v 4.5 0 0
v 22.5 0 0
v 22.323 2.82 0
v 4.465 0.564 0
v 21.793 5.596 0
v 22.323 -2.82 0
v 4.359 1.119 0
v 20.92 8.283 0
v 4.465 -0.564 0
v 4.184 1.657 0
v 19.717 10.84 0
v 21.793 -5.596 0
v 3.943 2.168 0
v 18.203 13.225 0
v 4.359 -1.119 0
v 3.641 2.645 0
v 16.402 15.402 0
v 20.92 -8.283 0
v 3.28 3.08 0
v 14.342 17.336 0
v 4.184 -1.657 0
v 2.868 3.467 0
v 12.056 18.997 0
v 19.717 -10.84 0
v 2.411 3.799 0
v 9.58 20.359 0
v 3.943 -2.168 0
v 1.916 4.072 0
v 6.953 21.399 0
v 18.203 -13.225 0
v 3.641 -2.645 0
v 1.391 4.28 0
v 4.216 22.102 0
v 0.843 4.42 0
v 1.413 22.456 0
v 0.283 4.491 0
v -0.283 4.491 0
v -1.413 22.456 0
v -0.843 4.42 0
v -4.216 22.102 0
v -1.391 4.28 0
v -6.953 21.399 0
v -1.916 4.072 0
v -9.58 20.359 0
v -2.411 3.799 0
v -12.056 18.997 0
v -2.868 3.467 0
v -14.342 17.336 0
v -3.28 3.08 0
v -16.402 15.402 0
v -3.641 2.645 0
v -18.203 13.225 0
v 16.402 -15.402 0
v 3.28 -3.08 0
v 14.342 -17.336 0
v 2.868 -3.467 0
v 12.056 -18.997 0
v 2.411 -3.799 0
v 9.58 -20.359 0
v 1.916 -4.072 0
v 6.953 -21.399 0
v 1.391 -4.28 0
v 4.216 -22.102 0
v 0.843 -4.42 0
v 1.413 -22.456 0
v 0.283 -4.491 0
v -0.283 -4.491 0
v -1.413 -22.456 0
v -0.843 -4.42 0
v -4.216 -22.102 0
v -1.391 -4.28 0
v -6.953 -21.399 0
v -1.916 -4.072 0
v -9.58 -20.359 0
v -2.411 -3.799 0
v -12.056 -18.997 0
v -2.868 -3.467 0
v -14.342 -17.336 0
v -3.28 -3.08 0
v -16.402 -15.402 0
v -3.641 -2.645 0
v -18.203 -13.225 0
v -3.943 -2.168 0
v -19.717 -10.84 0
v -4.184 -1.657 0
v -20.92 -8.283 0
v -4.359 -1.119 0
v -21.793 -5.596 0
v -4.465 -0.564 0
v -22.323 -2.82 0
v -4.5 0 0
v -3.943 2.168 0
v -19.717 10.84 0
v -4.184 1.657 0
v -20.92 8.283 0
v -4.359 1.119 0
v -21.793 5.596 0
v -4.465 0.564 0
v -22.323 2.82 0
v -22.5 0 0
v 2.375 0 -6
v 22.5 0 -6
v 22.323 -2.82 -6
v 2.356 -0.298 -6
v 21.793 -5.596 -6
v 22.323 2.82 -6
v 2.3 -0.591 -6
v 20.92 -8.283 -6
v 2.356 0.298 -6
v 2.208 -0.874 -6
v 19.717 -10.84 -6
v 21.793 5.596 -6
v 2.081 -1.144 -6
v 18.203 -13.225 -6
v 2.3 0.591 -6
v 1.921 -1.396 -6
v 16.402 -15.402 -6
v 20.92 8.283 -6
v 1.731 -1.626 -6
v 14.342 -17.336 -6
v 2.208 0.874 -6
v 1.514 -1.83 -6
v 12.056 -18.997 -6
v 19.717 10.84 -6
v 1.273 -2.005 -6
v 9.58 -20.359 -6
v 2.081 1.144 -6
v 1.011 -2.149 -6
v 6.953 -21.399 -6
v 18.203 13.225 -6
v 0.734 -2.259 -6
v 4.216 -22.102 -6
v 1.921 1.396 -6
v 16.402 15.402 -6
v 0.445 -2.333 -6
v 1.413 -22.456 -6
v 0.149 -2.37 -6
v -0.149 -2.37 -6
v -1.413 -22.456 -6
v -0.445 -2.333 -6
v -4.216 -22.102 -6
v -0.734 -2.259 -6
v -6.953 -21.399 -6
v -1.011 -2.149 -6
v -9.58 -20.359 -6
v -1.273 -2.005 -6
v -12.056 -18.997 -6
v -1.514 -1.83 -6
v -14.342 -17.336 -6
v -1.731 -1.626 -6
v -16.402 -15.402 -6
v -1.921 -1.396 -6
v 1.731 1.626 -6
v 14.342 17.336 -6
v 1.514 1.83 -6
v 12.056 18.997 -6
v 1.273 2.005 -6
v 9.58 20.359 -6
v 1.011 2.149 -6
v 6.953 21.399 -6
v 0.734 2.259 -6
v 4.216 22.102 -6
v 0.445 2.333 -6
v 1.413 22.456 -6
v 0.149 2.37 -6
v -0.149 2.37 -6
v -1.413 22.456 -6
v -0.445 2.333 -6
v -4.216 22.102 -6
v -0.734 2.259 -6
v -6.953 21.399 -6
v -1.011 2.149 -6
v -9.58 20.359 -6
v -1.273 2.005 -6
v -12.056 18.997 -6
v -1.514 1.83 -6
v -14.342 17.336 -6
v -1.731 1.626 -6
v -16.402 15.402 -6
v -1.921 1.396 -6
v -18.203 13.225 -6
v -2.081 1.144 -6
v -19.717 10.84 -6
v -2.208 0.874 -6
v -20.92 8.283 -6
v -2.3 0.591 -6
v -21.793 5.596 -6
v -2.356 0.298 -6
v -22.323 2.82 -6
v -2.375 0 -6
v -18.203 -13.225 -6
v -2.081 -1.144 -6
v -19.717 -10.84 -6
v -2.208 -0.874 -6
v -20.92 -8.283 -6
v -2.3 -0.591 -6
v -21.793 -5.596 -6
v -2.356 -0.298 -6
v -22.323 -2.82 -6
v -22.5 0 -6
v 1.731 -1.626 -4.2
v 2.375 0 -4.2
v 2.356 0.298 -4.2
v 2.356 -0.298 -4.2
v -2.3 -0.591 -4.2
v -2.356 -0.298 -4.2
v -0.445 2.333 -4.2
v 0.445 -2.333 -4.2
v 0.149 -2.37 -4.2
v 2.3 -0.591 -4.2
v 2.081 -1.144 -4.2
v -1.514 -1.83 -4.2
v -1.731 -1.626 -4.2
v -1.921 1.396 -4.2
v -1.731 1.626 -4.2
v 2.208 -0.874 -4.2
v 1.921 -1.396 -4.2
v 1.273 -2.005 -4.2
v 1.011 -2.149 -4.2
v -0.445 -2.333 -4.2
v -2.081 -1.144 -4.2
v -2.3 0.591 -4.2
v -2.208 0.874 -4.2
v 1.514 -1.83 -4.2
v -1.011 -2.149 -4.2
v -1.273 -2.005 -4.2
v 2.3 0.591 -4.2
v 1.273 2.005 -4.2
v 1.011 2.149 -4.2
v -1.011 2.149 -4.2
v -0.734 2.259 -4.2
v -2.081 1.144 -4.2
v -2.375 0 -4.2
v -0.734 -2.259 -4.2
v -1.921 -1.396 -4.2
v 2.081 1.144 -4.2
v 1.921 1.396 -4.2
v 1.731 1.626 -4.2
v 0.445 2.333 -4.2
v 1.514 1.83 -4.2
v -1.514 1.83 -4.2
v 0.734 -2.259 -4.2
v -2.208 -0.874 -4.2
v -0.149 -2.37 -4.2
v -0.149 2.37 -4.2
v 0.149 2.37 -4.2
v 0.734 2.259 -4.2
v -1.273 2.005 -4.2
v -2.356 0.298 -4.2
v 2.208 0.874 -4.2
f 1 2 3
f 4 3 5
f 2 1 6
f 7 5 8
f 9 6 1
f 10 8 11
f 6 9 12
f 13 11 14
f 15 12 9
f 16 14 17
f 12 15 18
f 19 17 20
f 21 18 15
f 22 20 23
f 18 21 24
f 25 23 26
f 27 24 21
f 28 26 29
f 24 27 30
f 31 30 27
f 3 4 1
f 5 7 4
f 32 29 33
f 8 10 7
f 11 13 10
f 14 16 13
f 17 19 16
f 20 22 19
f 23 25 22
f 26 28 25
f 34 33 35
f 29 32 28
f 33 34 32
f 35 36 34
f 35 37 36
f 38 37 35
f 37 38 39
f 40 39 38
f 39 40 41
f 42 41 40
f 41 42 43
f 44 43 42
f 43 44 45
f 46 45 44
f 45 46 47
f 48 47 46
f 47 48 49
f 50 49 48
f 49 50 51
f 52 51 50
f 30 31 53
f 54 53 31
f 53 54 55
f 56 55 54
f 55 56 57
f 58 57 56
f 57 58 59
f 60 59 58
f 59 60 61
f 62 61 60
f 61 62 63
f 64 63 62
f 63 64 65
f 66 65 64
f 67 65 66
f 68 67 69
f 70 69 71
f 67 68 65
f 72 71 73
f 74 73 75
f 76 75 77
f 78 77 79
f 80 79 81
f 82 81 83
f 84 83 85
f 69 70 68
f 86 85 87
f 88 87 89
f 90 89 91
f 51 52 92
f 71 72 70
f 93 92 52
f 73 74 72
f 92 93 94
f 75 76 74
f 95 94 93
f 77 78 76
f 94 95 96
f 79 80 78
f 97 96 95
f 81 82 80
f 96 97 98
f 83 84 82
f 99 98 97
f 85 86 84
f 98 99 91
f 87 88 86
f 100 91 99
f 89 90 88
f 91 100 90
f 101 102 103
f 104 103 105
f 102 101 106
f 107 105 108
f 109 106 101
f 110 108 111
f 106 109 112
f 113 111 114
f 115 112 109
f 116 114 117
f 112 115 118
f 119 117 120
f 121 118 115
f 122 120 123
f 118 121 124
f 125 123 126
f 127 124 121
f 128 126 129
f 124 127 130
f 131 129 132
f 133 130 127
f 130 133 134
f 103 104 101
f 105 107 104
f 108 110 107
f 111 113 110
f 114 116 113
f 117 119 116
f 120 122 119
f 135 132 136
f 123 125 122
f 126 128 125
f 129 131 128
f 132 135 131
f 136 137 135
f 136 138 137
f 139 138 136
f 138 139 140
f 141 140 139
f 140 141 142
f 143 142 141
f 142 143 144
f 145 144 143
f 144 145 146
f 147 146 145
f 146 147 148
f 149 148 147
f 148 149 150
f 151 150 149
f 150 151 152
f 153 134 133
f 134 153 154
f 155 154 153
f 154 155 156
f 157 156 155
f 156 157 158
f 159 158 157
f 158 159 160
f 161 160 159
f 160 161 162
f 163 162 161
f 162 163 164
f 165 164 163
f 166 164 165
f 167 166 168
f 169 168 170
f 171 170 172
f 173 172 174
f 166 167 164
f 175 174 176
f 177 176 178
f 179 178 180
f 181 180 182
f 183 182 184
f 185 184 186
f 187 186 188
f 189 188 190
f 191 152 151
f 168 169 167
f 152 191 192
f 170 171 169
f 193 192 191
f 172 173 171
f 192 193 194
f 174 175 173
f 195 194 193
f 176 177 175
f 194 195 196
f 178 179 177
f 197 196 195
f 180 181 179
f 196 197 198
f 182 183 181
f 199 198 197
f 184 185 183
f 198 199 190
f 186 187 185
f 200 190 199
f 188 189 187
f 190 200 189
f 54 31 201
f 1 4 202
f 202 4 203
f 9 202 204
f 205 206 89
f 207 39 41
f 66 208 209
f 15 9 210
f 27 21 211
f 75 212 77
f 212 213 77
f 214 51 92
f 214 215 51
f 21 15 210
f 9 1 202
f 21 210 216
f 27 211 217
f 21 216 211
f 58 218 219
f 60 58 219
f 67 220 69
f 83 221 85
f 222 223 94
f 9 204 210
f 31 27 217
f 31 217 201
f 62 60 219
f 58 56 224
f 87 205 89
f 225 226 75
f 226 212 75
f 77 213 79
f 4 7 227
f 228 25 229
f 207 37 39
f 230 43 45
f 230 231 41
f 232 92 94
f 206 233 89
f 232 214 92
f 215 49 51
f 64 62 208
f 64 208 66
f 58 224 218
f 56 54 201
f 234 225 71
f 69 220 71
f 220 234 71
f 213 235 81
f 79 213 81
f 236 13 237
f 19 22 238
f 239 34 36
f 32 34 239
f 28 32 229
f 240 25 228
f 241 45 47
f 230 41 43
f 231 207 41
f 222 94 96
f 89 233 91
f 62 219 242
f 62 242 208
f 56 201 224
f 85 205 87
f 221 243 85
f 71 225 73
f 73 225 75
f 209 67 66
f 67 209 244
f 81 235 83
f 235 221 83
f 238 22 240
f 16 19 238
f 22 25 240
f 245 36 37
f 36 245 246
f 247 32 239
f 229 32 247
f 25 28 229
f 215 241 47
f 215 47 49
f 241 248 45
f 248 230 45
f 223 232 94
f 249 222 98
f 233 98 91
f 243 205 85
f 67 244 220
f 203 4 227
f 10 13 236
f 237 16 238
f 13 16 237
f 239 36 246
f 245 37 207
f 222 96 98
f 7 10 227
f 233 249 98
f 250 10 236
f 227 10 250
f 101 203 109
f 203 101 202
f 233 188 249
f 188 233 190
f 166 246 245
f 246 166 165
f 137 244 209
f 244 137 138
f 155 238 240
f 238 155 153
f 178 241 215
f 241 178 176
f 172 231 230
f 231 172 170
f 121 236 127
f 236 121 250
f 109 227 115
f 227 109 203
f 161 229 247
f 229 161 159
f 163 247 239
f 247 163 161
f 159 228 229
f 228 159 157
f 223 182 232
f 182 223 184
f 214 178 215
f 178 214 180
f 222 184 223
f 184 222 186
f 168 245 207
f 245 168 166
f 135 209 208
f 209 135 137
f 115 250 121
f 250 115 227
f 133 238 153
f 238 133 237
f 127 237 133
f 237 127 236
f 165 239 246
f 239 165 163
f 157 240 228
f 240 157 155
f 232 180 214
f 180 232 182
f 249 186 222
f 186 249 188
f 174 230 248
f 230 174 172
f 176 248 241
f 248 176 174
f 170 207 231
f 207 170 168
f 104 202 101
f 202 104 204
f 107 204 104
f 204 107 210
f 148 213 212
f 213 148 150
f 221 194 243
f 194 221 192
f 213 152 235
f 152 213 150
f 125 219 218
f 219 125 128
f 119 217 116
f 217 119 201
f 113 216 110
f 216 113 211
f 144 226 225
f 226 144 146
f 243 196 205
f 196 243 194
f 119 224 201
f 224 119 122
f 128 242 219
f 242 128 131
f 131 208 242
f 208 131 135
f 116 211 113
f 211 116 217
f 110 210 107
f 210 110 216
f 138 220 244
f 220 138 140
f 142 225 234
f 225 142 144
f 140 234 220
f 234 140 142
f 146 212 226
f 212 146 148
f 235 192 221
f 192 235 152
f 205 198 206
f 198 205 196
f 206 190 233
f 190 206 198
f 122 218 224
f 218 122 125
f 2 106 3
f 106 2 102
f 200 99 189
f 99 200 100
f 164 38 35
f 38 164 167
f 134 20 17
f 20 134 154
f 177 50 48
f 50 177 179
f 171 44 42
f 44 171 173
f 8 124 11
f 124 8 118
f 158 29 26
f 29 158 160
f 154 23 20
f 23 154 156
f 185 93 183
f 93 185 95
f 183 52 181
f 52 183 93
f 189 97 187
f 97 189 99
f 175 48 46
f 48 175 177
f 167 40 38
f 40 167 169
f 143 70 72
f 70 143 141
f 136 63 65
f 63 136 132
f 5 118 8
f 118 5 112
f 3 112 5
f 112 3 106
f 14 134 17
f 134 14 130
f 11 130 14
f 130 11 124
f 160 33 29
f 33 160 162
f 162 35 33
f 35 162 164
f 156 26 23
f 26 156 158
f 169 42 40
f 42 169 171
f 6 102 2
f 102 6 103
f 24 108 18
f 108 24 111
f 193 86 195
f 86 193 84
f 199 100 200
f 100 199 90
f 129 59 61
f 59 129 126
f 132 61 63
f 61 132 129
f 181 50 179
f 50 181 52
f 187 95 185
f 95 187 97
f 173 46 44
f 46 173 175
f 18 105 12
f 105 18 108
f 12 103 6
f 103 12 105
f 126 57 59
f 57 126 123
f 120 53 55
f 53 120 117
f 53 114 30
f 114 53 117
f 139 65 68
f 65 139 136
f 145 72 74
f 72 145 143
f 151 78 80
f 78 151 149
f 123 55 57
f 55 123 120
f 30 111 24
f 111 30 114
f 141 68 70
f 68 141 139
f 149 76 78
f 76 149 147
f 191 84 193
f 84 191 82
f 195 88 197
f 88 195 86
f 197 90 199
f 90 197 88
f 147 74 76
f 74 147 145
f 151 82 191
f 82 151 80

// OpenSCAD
$fn = 50;


difference() {
	union() {
		translate(v = [0, 0, -6.0000000000]) {
			cylinder(h = 6, r = 22.5000000000);
		}
	}
	union() {
		translate(v = [0, 0, 0]) {
			rotate(a = [0, 0, 0]) {
				difference() {
					union() {
						translate(v = [0, 0, -6.0000000000]) {
							cylinder(h = 6, r = 2.2500000000);
						}
						translate(v = [0, 0, -4.2000000000]) {
							cylinder(h = 4.2000000000, r1 = 2.3750000000, r2 = 4.5000000000);
						}
						translate(v = [0, 0, -6.0000000000]) {
							cylinder(h = 6, r = 2.3750000000);
						}
						translate(v = [0, 0, -6.0000000000]) {
							cylinder(h = 6, r = 2.2500000000);
						}
					}
					union();
				}
			}
		}
	}
}
